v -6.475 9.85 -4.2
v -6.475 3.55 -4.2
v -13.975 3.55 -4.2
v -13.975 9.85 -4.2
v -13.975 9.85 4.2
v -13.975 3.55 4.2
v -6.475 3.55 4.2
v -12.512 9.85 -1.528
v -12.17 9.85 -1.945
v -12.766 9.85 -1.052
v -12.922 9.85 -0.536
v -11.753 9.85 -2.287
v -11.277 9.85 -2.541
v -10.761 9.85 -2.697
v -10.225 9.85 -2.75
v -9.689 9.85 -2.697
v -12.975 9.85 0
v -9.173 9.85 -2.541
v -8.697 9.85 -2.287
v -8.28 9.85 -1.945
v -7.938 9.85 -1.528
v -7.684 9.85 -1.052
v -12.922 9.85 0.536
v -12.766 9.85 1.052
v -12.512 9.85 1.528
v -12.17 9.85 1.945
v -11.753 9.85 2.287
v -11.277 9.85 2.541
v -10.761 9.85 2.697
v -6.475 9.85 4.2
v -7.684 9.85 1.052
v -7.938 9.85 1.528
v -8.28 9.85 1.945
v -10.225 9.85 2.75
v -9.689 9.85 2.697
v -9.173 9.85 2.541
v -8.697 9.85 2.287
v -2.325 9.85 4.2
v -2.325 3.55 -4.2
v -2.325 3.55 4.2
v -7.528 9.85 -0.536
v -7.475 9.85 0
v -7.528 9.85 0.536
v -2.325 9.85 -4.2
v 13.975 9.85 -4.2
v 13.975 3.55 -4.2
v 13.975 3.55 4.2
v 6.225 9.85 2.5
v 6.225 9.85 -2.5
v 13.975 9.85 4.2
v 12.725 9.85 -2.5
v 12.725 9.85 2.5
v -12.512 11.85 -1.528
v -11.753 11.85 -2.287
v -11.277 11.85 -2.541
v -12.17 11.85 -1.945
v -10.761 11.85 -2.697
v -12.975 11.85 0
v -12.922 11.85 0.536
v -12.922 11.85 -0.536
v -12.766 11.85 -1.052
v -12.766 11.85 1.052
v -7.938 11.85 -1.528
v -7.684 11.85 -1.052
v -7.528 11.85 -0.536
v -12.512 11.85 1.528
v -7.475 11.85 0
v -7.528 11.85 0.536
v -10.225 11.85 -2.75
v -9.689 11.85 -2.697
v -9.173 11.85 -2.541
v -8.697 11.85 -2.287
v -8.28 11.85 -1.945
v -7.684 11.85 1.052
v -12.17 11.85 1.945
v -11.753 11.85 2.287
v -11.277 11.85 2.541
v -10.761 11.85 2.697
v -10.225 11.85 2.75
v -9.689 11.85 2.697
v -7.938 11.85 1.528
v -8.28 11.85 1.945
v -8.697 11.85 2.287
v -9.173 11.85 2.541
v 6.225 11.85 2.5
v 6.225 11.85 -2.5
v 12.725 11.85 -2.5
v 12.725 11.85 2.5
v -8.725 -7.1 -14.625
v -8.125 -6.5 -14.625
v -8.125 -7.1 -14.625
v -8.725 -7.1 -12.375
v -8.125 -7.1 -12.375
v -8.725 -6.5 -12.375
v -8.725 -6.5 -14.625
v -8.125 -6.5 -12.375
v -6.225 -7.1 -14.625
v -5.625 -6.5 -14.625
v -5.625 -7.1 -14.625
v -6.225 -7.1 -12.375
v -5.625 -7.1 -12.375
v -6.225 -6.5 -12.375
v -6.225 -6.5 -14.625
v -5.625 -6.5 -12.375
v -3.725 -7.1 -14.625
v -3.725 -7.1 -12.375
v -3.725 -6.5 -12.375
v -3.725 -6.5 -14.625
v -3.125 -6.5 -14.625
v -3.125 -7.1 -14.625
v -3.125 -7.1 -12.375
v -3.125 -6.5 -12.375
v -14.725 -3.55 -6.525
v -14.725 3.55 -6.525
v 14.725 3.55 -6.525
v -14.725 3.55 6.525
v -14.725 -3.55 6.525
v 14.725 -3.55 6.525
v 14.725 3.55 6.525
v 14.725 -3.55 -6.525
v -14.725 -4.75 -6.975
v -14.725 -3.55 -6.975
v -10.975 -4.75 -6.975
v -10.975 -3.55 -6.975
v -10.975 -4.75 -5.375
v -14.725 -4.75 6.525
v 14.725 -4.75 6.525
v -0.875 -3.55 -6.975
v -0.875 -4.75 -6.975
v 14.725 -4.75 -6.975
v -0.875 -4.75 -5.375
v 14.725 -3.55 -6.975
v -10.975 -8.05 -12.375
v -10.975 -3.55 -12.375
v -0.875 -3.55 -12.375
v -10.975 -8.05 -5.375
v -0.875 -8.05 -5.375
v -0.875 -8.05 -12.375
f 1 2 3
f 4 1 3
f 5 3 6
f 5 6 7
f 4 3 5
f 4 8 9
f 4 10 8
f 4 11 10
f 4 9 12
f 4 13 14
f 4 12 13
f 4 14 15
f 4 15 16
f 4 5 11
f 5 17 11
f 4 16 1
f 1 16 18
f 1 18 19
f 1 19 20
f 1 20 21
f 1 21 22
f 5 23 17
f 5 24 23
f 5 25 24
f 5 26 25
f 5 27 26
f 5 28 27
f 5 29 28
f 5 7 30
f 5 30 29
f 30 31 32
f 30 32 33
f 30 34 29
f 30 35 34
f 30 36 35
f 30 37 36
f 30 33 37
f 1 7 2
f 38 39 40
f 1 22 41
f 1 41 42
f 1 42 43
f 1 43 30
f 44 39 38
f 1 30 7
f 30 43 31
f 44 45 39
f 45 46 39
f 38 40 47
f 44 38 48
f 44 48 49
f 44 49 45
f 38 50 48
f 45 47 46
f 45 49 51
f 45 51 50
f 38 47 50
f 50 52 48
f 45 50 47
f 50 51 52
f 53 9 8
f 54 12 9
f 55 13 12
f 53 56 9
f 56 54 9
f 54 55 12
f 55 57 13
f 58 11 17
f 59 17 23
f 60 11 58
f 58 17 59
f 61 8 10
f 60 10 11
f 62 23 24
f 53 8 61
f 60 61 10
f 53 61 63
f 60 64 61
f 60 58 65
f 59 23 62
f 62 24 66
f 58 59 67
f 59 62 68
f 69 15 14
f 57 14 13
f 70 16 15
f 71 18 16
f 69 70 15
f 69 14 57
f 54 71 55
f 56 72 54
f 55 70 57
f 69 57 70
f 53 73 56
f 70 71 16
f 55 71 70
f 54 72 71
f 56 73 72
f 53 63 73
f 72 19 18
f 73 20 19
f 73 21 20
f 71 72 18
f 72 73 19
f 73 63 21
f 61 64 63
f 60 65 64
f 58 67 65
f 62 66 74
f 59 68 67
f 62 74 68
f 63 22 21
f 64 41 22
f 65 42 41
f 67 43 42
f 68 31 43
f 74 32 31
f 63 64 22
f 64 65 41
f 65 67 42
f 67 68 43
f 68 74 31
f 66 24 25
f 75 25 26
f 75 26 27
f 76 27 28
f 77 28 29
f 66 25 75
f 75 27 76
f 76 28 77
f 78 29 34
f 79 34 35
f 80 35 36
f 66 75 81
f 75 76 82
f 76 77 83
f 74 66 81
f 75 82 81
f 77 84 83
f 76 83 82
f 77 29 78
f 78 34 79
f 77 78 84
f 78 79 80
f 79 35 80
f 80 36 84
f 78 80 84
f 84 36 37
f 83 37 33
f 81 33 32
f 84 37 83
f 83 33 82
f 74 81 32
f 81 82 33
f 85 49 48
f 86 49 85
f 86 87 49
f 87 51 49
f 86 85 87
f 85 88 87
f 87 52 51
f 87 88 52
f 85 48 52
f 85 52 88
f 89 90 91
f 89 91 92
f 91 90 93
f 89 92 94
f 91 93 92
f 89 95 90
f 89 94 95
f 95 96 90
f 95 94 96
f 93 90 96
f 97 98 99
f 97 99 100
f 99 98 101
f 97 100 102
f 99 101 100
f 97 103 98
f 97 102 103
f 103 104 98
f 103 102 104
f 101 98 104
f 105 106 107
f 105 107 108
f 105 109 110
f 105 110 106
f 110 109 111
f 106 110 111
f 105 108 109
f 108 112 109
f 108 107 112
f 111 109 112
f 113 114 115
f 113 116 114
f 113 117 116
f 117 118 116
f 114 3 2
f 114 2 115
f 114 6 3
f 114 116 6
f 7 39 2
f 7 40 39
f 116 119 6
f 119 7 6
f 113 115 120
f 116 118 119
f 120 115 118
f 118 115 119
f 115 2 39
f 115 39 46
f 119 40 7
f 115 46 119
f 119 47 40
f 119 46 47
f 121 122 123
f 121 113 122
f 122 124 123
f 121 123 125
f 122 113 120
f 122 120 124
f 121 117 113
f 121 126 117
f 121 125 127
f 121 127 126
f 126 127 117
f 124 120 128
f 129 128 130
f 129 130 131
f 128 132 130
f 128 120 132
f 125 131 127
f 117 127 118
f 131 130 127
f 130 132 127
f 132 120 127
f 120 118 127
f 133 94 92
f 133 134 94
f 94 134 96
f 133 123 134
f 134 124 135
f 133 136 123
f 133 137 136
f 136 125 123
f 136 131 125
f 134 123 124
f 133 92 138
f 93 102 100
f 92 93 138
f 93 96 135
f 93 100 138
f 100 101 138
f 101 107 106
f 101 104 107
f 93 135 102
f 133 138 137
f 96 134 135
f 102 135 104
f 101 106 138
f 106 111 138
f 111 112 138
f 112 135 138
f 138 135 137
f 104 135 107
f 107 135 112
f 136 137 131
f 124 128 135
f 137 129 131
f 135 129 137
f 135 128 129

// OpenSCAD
// Sharp GP2Y0D413K0F Distance Sensor Model
// Coordinate system: Center of main body is origin [0,0,0]
// +Z is Up, -Z is Down (Connector points down)
// +Y is Front (Lenses point front)
// +X is Right (from front view)

$fn = 32;

// Colors
color_case = [0.15, 0.15, 0.15];       // Carbonic ABS (Dark Slate Gray/Black)
color_lens = [0.2, 0.0, 0.1, 0.9];       // Acrylic visible light cut-off resin (Dark Red/Purple)
color_pwb = [0.7, 0.45, 0.2];           // Paper phenol (Brown/Beige)
color_connector = [0.9, 0.9, 0.9];     // White plastic housing
color_pin = [0.8, 0.8, 0.3];           // Gold/Brass pins

// Main Body Case Dimensions
case_w = 29.45;
case_d = 7.1;
case_h = 13.05;

// PWB Dimensions
pwb_w = 29.45;
pwb_d = 1.2;
pwb_h = 13.5;
pwb_z_offset = 6.525 - pwb_h/2; // Top of PWB aligns with top of body (Z = 13.05/2)

// Lens Cases Dimensions
lens_case_h = 8.4;
lens_case_d = 6.3;

// Left Lens Case (Light Emitter)
lens_case_l_w = 7.5;
lens_case_l_x = -10.225; // Center calculated from -14.725 (left edge) + 0.75 (gap) + 7.5/2

// Right Lens Case (Light Detector)
lens_case_r_w = 16.3;
lens_case_r_x = 5.825;   // Center calculated from -2.325 (start) + 16.3/2

// Connector (JCTC 12001W90-3P-HF) Dimensions
conn_w = 10.1;
conn_d = 4.5; // From PWB front to connector back
conn_h = 7.0;
conn_x = -5.925; // Left aligned: left edge of body (-14.725) + 3.75 + 10.1/2
conn_y = -3.55 - pwb_d - 3.3 + conn_d/2; // Based on 3.3mm projection from PWB back
conn_z = -12.375 + conn_h/2; // Bottom-most point is Z = -12.375 (18.9mm below top)

union() {
    // --- 1. Main Body Case (Carbonic ABS) ---
    color(color_case) {
        cube([case_w, case_d, case_h], center=true);
    }

    // --- 2. Lens Cases (Carbonic ABS, projecting front +Y) ---
    color(color_case) {
        // Left Lens Case (Emitter)
        translate([lens_case_l_x, case_d/2 + lens_case_d/2, 0])
            cube([lens_case_l_w, lens_case_d, lens_case_h], center=true);
        
        // Right Lens Case (Detector)
        translate([lens_case_r_x, case_d/2 + lens_case_d/2, 0])
            cube([lens_case_r_w, lens_case_d, lens_case_h], center=true);
    }

    // --- 3. Lenses (Acrylic resin, projecting +Y from lens cases) ---
    color(color_lens) {
        // Light Emitter Lens (Circular, Left)
        // Center of lens is at X = -10.225
        translate([-10.225, case_d/2 + lens_case_d, 0])
            rotate([-90, 0, 0])
                cylinder(d=5.5, h=2.0);

        // Light Detector Lens (Rectangular, Right)
        // Center of detector is at X = 9.475 (Emitter center -10.225 + 19.7)
        translate([9.475, case_d/2 + lens_case_d + 1.0, 0])
            cube([6.5, 2.0, 5.0], center=true);
    }

    // --- 4. PWB (Paper phenol, attached to rear -Y) ---
    color(color_pwb) {
        translate([0, -case_d/2 - pwb_d/2, pwb_z_offset])
            cube([pwb_w, pwb_d, pwb_h], center=true);
    }

    // --- 5. Connector Housing & Pins ---
    // Housing (White plastic)
    color(color_connector) {
        translate([conn_x, conn_y, conn_z])
            cube([conn_w, conn_d, conn_h], center=true);
    }
    
    // 3 Pins (Simplified representation, pointing down -Z)
    color(color_pin) {
        for (i = [-1 : 1]) {
            translate([conn_x + i * 2.5, conn_y - 1.0, conn_z - conn_h/2 - 1.0])
                cube([0.6, 0.6, 2.5], center=true);
        }
    }
}
